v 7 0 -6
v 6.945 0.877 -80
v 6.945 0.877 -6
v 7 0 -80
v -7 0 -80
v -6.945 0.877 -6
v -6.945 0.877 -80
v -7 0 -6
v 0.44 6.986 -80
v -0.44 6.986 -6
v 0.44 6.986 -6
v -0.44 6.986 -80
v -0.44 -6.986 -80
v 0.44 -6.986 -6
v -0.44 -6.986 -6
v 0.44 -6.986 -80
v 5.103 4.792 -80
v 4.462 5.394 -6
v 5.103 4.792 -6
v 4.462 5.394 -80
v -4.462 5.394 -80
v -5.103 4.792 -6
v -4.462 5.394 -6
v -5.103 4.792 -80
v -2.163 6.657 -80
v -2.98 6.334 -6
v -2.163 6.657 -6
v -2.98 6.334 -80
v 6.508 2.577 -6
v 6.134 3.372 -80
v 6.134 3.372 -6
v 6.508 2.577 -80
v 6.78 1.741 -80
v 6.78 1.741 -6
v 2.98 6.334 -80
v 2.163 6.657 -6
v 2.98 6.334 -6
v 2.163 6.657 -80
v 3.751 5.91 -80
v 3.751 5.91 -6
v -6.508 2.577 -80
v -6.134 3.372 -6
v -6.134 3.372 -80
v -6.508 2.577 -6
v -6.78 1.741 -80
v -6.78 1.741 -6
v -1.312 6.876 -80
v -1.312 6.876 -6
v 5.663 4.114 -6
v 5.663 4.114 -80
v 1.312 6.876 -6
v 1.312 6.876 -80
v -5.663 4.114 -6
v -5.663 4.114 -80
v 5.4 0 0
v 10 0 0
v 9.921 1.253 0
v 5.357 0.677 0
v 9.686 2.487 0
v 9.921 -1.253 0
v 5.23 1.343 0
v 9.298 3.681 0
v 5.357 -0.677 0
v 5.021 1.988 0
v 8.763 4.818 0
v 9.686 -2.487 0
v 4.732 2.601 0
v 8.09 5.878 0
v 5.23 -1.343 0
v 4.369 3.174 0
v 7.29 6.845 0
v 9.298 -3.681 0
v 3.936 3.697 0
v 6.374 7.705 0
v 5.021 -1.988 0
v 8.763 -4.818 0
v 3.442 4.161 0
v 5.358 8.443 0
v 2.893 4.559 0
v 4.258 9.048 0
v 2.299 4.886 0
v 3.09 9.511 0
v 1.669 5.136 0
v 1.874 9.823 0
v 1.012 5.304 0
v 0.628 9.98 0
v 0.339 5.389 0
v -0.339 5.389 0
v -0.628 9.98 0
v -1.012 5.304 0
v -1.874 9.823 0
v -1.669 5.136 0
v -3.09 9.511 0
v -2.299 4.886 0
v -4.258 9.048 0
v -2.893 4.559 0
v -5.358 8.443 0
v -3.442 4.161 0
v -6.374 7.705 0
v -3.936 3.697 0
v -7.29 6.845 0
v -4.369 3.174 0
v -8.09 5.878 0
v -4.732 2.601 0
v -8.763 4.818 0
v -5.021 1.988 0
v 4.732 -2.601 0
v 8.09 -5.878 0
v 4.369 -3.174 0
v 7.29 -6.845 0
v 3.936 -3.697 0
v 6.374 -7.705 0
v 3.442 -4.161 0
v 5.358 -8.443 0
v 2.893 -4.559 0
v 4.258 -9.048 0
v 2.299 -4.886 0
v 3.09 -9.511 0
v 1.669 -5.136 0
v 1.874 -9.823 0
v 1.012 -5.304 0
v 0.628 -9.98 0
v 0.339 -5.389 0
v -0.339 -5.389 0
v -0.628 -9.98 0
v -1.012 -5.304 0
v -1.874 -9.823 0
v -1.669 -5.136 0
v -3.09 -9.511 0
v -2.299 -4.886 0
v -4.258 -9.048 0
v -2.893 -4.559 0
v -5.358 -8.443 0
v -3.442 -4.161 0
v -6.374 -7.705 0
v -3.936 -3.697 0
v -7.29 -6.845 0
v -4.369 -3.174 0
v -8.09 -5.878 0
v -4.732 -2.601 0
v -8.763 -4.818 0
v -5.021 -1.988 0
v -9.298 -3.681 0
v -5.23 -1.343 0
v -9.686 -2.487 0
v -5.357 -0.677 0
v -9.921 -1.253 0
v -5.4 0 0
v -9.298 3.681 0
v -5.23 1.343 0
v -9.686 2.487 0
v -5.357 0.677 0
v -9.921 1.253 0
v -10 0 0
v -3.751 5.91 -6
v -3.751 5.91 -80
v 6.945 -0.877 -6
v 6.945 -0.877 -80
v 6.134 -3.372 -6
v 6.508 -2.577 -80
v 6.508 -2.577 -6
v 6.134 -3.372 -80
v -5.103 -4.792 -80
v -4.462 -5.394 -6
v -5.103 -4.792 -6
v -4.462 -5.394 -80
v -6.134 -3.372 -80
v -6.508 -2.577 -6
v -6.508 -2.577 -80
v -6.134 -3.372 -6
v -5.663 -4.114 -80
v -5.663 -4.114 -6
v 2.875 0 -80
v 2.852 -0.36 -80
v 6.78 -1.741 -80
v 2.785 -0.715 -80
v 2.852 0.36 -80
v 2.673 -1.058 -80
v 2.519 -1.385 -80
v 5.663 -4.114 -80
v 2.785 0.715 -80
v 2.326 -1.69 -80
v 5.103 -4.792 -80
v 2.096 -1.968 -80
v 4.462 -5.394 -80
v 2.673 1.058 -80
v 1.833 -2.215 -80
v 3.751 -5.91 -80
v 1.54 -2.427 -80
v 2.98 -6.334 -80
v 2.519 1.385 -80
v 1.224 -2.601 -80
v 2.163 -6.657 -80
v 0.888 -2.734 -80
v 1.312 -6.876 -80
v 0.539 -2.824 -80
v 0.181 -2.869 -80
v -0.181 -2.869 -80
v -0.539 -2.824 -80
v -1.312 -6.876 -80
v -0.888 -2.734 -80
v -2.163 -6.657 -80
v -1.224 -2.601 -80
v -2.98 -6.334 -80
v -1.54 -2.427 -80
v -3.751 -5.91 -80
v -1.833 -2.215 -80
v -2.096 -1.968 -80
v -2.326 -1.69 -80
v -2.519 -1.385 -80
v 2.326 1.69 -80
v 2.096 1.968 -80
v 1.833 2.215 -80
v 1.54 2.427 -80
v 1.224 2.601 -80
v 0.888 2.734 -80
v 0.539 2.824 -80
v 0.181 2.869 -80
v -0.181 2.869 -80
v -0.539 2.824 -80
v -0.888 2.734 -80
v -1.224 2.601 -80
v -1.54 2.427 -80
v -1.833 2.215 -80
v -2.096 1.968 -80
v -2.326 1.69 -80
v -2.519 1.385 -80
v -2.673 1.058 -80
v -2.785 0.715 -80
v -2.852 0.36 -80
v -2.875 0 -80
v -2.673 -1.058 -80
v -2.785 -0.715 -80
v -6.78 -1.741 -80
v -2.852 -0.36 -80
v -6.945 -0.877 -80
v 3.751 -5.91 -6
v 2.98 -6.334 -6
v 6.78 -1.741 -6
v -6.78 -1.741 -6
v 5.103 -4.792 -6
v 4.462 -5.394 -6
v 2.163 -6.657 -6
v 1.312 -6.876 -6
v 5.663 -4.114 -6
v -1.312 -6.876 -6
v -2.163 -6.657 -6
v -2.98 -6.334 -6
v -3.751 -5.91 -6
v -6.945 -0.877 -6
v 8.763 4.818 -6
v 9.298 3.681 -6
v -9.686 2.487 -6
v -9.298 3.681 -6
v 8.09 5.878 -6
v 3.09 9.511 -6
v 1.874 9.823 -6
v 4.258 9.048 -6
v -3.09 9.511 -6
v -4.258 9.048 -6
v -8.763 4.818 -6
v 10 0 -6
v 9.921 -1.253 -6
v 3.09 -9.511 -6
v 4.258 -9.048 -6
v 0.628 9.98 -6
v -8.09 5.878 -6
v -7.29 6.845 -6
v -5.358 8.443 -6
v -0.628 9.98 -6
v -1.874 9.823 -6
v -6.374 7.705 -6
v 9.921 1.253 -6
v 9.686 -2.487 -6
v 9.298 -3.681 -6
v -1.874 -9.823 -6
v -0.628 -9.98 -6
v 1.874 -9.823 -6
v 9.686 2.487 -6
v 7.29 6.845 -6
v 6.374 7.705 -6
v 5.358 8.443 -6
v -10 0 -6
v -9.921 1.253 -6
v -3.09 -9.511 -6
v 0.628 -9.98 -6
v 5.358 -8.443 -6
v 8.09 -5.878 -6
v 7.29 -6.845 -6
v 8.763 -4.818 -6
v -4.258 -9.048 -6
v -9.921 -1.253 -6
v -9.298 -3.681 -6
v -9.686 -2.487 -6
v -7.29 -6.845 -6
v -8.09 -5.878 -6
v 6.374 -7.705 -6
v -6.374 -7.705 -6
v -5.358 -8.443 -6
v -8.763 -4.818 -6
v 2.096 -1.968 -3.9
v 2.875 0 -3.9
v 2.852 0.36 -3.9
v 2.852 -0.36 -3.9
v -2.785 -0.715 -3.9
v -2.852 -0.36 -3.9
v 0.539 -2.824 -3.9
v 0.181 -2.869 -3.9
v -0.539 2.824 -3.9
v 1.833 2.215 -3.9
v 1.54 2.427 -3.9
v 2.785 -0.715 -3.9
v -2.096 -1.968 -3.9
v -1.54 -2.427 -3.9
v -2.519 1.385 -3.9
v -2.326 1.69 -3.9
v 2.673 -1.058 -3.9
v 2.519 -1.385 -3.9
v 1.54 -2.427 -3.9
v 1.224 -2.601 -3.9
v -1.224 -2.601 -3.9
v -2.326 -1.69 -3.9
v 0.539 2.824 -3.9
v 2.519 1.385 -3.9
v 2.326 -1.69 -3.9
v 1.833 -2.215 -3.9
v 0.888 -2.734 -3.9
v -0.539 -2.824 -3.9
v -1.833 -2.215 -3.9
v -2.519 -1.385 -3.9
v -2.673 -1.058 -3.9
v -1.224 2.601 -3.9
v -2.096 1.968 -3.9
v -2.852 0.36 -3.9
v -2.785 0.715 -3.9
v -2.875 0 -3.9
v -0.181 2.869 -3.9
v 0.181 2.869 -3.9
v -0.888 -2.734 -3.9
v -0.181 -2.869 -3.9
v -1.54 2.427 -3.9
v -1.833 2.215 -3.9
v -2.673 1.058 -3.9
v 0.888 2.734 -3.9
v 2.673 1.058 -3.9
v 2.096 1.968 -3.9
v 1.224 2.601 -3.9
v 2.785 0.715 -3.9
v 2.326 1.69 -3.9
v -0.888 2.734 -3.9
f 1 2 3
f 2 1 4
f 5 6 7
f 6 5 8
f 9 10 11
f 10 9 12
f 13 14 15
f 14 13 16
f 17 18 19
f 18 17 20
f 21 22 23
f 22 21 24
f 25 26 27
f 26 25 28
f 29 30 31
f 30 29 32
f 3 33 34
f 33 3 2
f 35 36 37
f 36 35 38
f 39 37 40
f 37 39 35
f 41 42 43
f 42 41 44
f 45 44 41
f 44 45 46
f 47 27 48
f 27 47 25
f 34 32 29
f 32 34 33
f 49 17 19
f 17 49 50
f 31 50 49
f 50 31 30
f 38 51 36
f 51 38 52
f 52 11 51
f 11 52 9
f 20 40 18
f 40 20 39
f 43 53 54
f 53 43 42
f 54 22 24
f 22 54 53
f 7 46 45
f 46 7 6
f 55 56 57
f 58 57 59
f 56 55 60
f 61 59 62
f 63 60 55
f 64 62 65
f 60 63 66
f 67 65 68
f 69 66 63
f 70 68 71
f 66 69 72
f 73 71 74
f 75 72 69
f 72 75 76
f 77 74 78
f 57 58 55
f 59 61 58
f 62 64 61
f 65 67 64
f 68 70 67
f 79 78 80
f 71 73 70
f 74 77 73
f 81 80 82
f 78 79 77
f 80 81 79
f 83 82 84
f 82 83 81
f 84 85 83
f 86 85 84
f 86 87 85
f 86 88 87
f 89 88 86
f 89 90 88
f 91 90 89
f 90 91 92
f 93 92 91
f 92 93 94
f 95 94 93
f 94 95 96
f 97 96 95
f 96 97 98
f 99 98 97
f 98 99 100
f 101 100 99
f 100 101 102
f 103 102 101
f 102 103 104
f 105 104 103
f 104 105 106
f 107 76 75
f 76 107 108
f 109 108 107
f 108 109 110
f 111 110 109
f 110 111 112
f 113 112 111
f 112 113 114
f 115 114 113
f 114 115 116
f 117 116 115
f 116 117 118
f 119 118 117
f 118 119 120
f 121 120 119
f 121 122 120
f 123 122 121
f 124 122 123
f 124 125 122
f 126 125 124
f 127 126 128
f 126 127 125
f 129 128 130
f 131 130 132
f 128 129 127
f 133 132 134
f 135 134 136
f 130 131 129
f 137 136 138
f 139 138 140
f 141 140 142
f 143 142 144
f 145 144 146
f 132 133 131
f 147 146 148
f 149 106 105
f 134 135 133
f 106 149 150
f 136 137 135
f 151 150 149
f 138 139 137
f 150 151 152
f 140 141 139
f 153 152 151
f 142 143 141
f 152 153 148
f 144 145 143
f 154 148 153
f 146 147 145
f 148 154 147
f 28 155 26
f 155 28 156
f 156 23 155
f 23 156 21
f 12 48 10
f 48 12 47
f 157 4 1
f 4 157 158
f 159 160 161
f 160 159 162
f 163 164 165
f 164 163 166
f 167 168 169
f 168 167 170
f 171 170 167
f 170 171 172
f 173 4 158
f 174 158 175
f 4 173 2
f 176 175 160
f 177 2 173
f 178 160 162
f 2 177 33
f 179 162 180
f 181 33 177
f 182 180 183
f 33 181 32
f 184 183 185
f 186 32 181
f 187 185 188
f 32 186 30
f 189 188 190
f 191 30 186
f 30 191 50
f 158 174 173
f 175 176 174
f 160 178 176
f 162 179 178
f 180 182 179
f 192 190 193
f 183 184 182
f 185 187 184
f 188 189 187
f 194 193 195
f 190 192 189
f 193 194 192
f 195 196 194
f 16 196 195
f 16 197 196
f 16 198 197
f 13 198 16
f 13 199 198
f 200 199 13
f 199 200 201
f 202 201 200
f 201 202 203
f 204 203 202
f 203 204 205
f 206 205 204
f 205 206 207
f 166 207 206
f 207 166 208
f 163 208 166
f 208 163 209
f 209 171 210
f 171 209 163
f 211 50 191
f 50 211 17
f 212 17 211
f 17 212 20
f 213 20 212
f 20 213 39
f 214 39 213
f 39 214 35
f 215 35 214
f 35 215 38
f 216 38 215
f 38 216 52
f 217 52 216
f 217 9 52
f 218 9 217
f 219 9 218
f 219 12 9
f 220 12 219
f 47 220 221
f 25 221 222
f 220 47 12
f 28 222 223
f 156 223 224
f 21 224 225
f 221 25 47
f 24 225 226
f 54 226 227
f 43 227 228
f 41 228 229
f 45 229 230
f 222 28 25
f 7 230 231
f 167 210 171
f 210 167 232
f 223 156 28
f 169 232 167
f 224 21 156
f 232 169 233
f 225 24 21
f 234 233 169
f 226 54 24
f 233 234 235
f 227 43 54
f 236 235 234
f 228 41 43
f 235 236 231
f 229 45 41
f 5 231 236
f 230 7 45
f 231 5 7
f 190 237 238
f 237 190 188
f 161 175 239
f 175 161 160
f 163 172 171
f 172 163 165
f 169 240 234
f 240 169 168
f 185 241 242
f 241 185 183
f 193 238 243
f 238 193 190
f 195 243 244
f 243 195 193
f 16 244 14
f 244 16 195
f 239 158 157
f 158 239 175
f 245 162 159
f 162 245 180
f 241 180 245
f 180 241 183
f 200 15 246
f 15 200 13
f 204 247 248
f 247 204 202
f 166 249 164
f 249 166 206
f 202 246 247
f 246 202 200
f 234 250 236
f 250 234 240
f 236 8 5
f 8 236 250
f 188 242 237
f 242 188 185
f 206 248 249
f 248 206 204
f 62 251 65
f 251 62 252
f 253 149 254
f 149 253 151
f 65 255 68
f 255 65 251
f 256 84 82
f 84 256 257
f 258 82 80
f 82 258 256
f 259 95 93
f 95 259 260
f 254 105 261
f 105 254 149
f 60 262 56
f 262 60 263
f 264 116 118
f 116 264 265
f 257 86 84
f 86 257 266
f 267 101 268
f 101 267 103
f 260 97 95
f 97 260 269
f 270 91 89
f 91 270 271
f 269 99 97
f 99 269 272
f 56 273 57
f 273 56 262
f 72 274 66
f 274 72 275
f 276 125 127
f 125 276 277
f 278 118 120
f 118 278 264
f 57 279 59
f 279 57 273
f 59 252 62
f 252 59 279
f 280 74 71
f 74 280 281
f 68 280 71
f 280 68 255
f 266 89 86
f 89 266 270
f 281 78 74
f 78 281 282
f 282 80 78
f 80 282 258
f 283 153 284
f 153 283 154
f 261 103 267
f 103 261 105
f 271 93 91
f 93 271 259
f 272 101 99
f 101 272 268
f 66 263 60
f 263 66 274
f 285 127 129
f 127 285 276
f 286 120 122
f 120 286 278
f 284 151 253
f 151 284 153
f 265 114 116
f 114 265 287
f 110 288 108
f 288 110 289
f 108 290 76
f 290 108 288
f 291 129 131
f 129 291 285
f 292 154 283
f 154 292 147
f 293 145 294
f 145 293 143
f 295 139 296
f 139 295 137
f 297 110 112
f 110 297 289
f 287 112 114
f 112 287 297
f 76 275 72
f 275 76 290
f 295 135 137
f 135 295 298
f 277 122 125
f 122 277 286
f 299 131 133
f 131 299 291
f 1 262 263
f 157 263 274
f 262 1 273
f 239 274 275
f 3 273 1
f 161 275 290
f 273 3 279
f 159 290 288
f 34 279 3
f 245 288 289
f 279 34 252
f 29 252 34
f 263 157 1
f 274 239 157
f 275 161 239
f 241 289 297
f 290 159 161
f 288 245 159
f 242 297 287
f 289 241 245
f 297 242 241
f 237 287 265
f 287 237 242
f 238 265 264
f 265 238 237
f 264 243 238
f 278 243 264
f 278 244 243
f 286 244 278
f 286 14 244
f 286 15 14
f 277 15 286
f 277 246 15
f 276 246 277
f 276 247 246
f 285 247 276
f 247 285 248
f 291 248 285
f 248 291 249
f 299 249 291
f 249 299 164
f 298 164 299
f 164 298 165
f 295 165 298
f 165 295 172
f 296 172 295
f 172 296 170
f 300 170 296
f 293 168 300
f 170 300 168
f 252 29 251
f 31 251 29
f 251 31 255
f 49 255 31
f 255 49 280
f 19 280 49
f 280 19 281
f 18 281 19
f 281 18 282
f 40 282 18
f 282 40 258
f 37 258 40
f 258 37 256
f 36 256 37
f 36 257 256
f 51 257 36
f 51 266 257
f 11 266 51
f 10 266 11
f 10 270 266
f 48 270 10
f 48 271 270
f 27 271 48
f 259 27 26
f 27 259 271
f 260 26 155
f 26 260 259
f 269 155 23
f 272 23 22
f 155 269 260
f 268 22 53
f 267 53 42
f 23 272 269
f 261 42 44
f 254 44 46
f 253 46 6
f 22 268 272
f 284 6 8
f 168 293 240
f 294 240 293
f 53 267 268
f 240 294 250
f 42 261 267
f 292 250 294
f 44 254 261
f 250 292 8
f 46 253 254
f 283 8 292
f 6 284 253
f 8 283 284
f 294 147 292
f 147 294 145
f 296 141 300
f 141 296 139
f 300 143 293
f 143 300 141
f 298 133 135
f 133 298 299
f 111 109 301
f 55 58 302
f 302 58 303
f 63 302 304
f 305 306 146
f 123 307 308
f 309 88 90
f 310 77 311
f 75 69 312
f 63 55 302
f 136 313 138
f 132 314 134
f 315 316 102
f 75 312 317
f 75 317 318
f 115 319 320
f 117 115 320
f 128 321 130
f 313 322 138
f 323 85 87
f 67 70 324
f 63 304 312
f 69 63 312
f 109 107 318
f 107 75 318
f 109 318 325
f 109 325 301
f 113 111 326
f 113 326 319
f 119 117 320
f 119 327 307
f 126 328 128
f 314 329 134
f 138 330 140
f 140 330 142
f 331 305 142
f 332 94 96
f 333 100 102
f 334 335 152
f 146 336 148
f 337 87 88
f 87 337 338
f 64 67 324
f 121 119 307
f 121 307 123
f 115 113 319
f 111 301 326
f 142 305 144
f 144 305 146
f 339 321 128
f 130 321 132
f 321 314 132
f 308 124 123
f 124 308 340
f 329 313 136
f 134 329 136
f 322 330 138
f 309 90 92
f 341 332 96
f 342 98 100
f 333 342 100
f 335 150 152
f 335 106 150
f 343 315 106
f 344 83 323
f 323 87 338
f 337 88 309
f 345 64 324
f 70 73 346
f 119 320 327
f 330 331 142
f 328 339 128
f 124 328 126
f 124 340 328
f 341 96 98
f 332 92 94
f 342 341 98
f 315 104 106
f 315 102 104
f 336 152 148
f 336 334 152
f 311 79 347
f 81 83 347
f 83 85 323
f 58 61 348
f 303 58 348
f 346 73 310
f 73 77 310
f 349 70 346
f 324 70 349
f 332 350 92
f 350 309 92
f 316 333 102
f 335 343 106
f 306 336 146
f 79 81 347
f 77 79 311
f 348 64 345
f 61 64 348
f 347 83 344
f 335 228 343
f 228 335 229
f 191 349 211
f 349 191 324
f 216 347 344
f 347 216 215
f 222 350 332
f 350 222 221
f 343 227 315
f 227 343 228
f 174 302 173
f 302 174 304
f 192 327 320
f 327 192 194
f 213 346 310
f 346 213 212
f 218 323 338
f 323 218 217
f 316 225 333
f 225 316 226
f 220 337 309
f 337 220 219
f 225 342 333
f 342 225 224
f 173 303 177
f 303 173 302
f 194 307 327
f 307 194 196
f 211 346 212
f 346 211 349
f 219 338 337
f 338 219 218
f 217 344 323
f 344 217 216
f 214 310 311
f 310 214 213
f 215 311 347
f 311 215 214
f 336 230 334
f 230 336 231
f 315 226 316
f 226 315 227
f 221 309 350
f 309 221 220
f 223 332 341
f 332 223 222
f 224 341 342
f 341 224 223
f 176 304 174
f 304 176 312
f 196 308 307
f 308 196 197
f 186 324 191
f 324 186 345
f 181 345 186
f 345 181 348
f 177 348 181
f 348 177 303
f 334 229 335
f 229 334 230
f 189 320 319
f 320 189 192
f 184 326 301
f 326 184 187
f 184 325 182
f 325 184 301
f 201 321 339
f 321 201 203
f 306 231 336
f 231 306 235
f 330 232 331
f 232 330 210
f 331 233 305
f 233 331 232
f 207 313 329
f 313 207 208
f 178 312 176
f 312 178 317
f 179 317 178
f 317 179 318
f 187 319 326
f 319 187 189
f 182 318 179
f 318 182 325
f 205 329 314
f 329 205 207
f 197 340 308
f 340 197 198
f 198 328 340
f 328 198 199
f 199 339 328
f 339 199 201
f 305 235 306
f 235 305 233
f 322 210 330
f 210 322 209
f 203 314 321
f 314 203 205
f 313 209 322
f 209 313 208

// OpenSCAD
$fn = 50;


difference() {
	union() {
		translate(v = [0, 0, -80.0000000000]) {
			cylinder(h = 80, r = 7.0000000000);
		}
		translate(v = [0, 0, -6.0000000000]) {
			cylinder(h = 6, r = 10.0000000000);
		}
	}
	union() {
		translate(v = [0, 0, 0]) {
			rotate(a = [0, 0, 0]) {
				difference() {
					union() {
						#translate(v = [0, 0, -80.0000000000]) {
							cylinder(h = 80, r = 2.6000000000);
						}
						#translate(v = [0, 0, -3.9000000000]) {
							cylinder(h = 3.9000000000, r = 7.0000000000, r1 = 2.8750000000, r2 = 5.4000000000);
						}
						#translate(v = [0, 0, -80.0000000000]) {
							cylinder(h = 80, r = 2.8750000000);
						}
						#translate(v = [0, 0, -80.0000000000]) {
							cylinder(h = 80, r = 2.6000000000);
						}
					}
					union();
				}
			}
		}
	}
}
